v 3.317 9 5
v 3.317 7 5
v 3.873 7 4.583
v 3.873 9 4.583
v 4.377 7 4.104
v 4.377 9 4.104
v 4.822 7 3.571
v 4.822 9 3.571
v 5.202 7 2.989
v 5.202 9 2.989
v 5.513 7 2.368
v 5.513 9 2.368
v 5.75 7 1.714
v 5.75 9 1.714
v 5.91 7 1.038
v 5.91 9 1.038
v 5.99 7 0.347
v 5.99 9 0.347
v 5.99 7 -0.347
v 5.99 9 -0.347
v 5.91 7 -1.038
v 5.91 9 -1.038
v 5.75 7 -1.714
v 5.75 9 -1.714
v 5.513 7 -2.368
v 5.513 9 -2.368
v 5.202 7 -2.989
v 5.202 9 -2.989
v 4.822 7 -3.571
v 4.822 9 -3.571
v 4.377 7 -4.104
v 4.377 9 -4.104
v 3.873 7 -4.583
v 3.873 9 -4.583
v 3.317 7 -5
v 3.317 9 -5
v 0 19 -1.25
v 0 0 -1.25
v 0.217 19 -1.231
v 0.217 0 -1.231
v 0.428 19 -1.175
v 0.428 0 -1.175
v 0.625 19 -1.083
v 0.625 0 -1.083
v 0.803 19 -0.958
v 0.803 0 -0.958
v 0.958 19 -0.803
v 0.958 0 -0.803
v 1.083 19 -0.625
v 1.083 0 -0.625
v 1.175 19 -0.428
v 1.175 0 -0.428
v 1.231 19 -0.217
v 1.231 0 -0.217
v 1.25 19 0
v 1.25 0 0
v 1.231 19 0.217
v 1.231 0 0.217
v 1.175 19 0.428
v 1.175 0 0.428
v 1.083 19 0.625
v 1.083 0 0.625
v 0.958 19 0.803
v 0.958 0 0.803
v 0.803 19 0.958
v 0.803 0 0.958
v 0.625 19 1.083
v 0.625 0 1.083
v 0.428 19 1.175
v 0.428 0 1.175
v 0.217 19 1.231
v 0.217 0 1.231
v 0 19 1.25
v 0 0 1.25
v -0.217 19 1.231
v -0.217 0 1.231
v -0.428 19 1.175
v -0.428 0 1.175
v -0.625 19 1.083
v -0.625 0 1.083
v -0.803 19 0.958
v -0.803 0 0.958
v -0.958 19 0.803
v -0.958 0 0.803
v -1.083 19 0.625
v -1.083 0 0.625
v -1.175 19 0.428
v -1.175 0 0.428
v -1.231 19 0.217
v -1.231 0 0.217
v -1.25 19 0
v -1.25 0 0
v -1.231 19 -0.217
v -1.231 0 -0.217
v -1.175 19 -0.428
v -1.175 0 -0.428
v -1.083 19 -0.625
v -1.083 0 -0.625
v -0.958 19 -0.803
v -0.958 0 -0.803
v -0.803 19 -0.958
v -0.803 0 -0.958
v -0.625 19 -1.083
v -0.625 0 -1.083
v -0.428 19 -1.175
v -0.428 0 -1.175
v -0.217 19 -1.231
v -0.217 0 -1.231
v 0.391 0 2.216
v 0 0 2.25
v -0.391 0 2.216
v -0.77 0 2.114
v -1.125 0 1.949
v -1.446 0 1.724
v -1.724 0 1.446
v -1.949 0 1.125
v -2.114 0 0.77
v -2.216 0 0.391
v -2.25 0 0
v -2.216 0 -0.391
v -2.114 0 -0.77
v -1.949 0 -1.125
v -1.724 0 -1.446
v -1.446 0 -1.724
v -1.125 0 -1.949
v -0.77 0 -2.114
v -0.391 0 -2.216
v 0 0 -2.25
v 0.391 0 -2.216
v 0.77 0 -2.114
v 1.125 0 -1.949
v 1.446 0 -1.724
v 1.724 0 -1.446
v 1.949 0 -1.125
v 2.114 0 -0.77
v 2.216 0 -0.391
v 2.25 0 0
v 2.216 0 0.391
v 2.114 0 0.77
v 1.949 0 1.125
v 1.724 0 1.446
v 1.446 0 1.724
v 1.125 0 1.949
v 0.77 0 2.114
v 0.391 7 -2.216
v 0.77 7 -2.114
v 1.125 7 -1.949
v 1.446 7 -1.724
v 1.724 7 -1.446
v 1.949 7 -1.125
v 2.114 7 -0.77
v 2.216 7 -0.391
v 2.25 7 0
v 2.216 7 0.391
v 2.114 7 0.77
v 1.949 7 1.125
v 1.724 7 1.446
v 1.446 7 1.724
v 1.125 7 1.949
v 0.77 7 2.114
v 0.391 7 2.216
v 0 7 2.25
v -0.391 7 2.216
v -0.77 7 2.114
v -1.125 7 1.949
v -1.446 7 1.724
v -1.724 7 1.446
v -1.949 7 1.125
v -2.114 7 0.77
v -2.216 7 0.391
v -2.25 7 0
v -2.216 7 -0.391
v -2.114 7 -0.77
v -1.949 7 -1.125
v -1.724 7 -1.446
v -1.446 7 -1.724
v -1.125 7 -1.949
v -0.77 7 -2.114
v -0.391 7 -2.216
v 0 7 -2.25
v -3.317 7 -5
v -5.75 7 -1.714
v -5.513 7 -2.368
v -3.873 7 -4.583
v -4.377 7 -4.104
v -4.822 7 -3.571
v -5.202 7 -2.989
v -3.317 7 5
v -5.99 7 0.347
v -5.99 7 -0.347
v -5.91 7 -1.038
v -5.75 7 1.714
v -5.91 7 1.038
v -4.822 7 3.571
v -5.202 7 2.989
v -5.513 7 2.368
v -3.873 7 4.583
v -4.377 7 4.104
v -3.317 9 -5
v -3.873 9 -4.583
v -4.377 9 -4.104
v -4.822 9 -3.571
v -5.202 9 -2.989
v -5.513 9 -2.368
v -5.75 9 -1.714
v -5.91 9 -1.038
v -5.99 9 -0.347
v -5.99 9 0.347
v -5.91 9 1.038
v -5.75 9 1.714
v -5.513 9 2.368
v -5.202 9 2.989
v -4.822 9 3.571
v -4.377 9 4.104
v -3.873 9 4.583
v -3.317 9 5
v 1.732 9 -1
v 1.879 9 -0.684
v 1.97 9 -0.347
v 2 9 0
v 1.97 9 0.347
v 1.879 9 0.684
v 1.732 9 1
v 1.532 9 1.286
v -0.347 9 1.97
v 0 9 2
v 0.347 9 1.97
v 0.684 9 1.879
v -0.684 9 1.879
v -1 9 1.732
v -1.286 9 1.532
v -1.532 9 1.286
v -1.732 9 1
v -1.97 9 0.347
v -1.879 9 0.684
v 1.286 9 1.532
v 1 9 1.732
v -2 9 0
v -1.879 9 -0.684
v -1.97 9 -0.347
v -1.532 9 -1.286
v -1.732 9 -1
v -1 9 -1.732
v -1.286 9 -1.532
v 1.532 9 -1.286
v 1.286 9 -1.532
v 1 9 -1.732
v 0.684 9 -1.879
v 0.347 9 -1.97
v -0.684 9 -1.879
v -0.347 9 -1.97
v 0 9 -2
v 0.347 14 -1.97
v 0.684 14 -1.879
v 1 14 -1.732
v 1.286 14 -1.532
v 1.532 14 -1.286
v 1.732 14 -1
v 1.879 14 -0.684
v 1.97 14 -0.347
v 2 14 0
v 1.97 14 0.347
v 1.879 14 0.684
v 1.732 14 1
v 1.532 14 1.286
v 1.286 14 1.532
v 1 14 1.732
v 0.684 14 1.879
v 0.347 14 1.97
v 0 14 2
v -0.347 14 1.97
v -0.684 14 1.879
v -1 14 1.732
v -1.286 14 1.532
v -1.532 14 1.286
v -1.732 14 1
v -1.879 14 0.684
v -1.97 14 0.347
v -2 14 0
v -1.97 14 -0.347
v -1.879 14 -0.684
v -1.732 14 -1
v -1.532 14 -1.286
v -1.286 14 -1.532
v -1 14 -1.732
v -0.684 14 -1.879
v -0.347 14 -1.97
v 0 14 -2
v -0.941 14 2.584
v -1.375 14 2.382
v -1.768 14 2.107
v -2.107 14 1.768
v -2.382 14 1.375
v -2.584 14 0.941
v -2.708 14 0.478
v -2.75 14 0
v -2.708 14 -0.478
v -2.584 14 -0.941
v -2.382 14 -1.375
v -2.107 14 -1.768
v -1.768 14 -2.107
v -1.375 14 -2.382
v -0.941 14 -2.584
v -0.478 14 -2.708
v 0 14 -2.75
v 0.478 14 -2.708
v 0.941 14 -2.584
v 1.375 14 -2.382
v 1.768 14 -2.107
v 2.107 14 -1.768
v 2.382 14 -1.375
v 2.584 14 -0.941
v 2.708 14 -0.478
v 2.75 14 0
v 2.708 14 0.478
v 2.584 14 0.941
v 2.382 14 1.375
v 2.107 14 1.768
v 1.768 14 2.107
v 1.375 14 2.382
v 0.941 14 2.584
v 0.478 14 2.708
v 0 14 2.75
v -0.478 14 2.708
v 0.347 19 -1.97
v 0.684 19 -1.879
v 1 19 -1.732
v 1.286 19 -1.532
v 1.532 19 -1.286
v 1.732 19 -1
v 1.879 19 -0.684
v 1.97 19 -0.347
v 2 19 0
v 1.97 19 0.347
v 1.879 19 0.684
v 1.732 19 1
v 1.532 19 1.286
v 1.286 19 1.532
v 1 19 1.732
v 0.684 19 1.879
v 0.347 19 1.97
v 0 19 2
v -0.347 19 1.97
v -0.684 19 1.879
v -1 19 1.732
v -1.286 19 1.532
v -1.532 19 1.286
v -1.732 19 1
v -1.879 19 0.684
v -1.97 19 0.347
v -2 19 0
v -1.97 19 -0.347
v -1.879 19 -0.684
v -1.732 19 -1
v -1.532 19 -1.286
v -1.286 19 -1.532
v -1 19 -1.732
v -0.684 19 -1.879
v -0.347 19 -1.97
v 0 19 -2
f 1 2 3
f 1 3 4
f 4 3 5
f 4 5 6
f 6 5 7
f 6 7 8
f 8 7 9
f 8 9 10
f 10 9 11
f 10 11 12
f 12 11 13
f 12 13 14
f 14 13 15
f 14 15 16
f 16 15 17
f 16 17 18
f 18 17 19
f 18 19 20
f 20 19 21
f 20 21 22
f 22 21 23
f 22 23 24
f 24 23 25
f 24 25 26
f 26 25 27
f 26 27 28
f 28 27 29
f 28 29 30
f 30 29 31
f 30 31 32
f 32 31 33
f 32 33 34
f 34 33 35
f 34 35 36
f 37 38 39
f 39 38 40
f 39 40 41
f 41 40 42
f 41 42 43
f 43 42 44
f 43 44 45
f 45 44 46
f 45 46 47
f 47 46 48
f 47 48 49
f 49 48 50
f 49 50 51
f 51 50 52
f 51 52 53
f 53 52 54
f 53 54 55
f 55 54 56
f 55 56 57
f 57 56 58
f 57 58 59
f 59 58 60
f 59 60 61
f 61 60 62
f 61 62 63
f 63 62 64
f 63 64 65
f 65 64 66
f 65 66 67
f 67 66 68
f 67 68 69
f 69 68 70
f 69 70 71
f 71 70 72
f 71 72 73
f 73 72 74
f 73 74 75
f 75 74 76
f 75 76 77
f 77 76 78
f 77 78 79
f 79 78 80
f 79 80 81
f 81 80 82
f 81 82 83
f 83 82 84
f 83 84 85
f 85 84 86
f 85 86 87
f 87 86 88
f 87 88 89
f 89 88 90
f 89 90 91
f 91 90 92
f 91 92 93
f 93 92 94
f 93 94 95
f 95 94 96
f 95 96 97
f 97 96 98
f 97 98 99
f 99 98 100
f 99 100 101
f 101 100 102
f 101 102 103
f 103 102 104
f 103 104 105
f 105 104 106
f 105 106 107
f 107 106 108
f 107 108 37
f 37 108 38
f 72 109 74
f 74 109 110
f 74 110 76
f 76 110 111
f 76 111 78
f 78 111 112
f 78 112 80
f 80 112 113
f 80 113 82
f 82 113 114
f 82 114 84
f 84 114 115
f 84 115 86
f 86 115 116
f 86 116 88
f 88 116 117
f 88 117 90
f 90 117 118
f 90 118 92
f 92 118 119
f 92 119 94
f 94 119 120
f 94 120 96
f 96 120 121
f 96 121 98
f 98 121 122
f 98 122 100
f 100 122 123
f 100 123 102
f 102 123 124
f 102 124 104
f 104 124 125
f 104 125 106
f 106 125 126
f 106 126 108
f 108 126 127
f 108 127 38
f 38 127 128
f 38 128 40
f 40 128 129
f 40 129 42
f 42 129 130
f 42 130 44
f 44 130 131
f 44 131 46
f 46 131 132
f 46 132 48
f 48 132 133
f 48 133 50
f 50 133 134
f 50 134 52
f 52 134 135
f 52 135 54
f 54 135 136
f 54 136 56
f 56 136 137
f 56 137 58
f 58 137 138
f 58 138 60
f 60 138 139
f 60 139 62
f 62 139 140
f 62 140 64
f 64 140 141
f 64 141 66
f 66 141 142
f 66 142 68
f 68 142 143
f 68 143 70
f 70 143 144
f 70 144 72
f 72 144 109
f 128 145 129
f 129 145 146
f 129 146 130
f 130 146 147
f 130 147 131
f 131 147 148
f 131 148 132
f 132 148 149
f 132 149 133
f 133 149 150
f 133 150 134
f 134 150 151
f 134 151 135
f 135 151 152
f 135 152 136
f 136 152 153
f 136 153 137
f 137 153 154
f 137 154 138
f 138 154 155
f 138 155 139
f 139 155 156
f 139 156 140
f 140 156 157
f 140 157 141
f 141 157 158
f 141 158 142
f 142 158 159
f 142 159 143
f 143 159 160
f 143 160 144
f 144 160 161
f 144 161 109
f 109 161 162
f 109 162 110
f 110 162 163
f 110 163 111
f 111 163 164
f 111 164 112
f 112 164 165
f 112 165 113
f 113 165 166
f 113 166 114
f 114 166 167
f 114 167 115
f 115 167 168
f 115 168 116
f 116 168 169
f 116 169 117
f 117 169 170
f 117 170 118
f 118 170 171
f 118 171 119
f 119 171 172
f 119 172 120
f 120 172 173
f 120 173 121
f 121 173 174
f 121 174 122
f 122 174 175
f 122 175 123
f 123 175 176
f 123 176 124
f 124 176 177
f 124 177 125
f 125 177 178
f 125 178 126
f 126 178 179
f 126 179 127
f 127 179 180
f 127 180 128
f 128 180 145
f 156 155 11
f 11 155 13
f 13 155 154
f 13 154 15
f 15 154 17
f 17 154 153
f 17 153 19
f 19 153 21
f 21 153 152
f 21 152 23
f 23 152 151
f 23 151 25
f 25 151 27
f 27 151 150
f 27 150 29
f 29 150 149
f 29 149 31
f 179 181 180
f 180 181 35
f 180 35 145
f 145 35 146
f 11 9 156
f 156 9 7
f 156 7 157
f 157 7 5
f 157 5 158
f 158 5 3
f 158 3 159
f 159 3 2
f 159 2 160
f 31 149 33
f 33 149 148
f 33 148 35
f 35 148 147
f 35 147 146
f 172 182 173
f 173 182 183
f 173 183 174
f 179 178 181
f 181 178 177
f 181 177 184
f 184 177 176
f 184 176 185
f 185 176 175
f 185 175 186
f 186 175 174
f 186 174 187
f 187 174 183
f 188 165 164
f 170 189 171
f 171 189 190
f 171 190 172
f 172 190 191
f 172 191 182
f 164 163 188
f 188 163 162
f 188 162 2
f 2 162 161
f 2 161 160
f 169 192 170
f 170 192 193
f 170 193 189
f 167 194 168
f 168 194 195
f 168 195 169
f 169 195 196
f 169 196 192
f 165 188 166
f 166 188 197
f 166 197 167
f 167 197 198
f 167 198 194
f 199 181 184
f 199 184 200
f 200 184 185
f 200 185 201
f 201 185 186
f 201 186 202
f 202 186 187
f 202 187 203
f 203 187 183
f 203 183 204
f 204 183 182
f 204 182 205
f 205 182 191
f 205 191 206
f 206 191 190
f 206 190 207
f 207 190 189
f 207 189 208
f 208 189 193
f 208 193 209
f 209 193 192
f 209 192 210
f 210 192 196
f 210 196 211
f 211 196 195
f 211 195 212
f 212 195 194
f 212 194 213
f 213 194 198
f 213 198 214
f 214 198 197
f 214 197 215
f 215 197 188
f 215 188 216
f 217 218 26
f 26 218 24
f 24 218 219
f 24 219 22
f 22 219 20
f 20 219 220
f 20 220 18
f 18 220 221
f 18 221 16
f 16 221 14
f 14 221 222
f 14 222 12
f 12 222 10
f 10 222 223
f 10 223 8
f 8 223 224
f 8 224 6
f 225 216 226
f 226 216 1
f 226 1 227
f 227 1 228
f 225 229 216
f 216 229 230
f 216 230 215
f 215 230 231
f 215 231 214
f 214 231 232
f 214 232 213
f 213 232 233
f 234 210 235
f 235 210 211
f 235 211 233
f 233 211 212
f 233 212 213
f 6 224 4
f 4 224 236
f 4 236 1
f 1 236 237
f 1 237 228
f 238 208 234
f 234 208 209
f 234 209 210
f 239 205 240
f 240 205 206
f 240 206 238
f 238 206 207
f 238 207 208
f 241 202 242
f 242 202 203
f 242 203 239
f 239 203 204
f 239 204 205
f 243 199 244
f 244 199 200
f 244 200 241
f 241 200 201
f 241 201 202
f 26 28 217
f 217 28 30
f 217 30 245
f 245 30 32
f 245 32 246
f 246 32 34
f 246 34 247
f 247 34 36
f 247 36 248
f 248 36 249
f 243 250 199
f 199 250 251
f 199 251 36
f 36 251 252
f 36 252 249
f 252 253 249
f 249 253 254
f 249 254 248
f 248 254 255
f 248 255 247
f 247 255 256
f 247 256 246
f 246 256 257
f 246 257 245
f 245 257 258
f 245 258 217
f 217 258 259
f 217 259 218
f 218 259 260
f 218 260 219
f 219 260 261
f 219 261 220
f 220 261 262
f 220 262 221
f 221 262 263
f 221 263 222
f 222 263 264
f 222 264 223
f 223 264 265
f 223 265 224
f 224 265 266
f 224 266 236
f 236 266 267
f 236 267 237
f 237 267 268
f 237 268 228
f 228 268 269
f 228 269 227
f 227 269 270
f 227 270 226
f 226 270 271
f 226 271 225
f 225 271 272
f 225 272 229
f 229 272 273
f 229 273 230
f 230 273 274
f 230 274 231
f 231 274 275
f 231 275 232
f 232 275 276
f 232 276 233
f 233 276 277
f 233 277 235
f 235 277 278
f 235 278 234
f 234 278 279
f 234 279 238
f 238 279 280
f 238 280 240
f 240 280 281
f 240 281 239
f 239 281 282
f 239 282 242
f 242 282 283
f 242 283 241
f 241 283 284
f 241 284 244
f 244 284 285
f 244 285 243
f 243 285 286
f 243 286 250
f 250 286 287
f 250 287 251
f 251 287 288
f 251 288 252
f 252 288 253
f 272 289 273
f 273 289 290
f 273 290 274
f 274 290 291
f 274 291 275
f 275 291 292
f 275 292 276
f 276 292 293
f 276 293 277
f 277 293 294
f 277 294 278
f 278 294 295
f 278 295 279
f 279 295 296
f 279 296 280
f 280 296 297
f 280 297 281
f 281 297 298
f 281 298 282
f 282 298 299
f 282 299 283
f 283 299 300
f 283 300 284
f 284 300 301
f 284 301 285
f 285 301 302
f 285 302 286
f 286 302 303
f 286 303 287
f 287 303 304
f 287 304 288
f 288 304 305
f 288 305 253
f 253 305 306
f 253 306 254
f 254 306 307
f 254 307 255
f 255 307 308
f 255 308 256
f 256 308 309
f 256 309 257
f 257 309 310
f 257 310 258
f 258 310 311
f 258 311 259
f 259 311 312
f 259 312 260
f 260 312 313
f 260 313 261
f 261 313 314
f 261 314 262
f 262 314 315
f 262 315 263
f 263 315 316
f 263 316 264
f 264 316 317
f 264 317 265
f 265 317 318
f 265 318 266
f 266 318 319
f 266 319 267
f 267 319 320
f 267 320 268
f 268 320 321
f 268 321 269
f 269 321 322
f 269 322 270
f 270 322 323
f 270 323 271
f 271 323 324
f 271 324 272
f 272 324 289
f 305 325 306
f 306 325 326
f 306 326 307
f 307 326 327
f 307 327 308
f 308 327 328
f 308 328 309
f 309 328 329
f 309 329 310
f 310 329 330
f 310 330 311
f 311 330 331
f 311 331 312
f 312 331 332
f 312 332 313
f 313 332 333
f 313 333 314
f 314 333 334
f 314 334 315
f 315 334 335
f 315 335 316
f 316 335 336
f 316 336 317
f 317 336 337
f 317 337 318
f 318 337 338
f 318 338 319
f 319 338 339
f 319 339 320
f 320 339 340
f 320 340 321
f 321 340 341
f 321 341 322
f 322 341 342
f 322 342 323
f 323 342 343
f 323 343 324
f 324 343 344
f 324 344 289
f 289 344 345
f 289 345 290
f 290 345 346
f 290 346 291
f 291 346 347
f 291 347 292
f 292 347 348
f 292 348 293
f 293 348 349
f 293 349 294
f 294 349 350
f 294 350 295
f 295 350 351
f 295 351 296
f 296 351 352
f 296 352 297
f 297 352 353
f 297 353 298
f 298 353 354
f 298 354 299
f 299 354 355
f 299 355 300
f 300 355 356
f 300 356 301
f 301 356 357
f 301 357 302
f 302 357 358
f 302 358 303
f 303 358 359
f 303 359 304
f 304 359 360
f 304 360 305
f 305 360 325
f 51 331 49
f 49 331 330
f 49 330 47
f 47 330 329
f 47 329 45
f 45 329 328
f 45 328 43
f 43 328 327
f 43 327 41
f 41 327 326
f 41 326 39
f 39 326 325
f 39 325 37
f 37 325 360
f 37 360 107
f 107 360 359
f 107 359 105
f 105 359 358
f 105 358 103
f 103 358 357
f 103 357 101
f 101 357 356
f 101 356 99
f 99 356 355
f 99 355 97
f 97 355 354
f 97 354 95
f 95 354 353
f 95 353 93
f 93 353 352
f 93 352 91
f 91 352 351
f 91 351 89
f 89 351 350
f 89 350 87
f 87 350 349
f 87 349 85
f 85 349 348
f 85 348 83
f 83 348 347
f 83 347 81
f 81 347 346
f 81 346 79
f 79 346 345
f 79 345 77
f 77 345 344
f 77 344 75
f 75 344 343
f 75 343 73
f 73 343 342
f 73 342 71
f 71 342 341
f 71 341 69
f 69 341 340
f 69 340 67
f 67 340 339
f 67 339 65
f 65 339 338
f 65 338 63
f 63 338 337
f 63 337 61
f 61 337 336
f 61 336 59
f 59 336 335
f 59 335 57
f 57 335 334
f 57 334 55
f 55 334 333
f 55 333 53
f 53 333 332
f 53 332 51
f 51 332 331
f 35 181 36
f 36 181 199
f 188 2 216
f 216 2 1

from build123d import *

# Parameters (mm, degrees)
SKETCH_2_W          = 11.803502198
SKETCH_2_H          = 1.437820381
CUT_EXTRUDE_1_DEPTH = 10


with BuildPart() as part:
    # Эскиз1 → Повернуть1 (revolve)
    with BuildSketch(Plane.XY, mode=Mode.PRIVATE) as revolve_1_sk:
        Polygon((-1.25, 0), (-2.25, 0), (-2.25, 7), (-6, 7), (-6, 9), (-2, 9), (-2, 14), (-2.75, 14), (-2, 19), (-1.25, 19), align=None)
    revolve(revolve_1_sk.sketch.rotate(Axis((0, 0, 0), (0, 1, 0)), 270), axis=Axis((0, 0, 0), (0, 1, 0)))

    # Эскиз2 → Вырез-Вытянуть1 (cut)
    with BuildSketch(Plane(origin=(0, 9, 0), x_dir=(1, 0, 0), z_dir=(0, 1, 0))):
        with Locations((0, -5.718910191)):
            Rectangle(SKETCH_2_W, SKETCH_2_H)
        with Locations((0, 5.718910191)):
            Rectangle(SKETCH_2_W, SKETCH_2_H)
    extrude(amount=-CUT_EXTRUDE_1_DEPTH, mode=Mode.SUBTRACT)


solid = part.part
